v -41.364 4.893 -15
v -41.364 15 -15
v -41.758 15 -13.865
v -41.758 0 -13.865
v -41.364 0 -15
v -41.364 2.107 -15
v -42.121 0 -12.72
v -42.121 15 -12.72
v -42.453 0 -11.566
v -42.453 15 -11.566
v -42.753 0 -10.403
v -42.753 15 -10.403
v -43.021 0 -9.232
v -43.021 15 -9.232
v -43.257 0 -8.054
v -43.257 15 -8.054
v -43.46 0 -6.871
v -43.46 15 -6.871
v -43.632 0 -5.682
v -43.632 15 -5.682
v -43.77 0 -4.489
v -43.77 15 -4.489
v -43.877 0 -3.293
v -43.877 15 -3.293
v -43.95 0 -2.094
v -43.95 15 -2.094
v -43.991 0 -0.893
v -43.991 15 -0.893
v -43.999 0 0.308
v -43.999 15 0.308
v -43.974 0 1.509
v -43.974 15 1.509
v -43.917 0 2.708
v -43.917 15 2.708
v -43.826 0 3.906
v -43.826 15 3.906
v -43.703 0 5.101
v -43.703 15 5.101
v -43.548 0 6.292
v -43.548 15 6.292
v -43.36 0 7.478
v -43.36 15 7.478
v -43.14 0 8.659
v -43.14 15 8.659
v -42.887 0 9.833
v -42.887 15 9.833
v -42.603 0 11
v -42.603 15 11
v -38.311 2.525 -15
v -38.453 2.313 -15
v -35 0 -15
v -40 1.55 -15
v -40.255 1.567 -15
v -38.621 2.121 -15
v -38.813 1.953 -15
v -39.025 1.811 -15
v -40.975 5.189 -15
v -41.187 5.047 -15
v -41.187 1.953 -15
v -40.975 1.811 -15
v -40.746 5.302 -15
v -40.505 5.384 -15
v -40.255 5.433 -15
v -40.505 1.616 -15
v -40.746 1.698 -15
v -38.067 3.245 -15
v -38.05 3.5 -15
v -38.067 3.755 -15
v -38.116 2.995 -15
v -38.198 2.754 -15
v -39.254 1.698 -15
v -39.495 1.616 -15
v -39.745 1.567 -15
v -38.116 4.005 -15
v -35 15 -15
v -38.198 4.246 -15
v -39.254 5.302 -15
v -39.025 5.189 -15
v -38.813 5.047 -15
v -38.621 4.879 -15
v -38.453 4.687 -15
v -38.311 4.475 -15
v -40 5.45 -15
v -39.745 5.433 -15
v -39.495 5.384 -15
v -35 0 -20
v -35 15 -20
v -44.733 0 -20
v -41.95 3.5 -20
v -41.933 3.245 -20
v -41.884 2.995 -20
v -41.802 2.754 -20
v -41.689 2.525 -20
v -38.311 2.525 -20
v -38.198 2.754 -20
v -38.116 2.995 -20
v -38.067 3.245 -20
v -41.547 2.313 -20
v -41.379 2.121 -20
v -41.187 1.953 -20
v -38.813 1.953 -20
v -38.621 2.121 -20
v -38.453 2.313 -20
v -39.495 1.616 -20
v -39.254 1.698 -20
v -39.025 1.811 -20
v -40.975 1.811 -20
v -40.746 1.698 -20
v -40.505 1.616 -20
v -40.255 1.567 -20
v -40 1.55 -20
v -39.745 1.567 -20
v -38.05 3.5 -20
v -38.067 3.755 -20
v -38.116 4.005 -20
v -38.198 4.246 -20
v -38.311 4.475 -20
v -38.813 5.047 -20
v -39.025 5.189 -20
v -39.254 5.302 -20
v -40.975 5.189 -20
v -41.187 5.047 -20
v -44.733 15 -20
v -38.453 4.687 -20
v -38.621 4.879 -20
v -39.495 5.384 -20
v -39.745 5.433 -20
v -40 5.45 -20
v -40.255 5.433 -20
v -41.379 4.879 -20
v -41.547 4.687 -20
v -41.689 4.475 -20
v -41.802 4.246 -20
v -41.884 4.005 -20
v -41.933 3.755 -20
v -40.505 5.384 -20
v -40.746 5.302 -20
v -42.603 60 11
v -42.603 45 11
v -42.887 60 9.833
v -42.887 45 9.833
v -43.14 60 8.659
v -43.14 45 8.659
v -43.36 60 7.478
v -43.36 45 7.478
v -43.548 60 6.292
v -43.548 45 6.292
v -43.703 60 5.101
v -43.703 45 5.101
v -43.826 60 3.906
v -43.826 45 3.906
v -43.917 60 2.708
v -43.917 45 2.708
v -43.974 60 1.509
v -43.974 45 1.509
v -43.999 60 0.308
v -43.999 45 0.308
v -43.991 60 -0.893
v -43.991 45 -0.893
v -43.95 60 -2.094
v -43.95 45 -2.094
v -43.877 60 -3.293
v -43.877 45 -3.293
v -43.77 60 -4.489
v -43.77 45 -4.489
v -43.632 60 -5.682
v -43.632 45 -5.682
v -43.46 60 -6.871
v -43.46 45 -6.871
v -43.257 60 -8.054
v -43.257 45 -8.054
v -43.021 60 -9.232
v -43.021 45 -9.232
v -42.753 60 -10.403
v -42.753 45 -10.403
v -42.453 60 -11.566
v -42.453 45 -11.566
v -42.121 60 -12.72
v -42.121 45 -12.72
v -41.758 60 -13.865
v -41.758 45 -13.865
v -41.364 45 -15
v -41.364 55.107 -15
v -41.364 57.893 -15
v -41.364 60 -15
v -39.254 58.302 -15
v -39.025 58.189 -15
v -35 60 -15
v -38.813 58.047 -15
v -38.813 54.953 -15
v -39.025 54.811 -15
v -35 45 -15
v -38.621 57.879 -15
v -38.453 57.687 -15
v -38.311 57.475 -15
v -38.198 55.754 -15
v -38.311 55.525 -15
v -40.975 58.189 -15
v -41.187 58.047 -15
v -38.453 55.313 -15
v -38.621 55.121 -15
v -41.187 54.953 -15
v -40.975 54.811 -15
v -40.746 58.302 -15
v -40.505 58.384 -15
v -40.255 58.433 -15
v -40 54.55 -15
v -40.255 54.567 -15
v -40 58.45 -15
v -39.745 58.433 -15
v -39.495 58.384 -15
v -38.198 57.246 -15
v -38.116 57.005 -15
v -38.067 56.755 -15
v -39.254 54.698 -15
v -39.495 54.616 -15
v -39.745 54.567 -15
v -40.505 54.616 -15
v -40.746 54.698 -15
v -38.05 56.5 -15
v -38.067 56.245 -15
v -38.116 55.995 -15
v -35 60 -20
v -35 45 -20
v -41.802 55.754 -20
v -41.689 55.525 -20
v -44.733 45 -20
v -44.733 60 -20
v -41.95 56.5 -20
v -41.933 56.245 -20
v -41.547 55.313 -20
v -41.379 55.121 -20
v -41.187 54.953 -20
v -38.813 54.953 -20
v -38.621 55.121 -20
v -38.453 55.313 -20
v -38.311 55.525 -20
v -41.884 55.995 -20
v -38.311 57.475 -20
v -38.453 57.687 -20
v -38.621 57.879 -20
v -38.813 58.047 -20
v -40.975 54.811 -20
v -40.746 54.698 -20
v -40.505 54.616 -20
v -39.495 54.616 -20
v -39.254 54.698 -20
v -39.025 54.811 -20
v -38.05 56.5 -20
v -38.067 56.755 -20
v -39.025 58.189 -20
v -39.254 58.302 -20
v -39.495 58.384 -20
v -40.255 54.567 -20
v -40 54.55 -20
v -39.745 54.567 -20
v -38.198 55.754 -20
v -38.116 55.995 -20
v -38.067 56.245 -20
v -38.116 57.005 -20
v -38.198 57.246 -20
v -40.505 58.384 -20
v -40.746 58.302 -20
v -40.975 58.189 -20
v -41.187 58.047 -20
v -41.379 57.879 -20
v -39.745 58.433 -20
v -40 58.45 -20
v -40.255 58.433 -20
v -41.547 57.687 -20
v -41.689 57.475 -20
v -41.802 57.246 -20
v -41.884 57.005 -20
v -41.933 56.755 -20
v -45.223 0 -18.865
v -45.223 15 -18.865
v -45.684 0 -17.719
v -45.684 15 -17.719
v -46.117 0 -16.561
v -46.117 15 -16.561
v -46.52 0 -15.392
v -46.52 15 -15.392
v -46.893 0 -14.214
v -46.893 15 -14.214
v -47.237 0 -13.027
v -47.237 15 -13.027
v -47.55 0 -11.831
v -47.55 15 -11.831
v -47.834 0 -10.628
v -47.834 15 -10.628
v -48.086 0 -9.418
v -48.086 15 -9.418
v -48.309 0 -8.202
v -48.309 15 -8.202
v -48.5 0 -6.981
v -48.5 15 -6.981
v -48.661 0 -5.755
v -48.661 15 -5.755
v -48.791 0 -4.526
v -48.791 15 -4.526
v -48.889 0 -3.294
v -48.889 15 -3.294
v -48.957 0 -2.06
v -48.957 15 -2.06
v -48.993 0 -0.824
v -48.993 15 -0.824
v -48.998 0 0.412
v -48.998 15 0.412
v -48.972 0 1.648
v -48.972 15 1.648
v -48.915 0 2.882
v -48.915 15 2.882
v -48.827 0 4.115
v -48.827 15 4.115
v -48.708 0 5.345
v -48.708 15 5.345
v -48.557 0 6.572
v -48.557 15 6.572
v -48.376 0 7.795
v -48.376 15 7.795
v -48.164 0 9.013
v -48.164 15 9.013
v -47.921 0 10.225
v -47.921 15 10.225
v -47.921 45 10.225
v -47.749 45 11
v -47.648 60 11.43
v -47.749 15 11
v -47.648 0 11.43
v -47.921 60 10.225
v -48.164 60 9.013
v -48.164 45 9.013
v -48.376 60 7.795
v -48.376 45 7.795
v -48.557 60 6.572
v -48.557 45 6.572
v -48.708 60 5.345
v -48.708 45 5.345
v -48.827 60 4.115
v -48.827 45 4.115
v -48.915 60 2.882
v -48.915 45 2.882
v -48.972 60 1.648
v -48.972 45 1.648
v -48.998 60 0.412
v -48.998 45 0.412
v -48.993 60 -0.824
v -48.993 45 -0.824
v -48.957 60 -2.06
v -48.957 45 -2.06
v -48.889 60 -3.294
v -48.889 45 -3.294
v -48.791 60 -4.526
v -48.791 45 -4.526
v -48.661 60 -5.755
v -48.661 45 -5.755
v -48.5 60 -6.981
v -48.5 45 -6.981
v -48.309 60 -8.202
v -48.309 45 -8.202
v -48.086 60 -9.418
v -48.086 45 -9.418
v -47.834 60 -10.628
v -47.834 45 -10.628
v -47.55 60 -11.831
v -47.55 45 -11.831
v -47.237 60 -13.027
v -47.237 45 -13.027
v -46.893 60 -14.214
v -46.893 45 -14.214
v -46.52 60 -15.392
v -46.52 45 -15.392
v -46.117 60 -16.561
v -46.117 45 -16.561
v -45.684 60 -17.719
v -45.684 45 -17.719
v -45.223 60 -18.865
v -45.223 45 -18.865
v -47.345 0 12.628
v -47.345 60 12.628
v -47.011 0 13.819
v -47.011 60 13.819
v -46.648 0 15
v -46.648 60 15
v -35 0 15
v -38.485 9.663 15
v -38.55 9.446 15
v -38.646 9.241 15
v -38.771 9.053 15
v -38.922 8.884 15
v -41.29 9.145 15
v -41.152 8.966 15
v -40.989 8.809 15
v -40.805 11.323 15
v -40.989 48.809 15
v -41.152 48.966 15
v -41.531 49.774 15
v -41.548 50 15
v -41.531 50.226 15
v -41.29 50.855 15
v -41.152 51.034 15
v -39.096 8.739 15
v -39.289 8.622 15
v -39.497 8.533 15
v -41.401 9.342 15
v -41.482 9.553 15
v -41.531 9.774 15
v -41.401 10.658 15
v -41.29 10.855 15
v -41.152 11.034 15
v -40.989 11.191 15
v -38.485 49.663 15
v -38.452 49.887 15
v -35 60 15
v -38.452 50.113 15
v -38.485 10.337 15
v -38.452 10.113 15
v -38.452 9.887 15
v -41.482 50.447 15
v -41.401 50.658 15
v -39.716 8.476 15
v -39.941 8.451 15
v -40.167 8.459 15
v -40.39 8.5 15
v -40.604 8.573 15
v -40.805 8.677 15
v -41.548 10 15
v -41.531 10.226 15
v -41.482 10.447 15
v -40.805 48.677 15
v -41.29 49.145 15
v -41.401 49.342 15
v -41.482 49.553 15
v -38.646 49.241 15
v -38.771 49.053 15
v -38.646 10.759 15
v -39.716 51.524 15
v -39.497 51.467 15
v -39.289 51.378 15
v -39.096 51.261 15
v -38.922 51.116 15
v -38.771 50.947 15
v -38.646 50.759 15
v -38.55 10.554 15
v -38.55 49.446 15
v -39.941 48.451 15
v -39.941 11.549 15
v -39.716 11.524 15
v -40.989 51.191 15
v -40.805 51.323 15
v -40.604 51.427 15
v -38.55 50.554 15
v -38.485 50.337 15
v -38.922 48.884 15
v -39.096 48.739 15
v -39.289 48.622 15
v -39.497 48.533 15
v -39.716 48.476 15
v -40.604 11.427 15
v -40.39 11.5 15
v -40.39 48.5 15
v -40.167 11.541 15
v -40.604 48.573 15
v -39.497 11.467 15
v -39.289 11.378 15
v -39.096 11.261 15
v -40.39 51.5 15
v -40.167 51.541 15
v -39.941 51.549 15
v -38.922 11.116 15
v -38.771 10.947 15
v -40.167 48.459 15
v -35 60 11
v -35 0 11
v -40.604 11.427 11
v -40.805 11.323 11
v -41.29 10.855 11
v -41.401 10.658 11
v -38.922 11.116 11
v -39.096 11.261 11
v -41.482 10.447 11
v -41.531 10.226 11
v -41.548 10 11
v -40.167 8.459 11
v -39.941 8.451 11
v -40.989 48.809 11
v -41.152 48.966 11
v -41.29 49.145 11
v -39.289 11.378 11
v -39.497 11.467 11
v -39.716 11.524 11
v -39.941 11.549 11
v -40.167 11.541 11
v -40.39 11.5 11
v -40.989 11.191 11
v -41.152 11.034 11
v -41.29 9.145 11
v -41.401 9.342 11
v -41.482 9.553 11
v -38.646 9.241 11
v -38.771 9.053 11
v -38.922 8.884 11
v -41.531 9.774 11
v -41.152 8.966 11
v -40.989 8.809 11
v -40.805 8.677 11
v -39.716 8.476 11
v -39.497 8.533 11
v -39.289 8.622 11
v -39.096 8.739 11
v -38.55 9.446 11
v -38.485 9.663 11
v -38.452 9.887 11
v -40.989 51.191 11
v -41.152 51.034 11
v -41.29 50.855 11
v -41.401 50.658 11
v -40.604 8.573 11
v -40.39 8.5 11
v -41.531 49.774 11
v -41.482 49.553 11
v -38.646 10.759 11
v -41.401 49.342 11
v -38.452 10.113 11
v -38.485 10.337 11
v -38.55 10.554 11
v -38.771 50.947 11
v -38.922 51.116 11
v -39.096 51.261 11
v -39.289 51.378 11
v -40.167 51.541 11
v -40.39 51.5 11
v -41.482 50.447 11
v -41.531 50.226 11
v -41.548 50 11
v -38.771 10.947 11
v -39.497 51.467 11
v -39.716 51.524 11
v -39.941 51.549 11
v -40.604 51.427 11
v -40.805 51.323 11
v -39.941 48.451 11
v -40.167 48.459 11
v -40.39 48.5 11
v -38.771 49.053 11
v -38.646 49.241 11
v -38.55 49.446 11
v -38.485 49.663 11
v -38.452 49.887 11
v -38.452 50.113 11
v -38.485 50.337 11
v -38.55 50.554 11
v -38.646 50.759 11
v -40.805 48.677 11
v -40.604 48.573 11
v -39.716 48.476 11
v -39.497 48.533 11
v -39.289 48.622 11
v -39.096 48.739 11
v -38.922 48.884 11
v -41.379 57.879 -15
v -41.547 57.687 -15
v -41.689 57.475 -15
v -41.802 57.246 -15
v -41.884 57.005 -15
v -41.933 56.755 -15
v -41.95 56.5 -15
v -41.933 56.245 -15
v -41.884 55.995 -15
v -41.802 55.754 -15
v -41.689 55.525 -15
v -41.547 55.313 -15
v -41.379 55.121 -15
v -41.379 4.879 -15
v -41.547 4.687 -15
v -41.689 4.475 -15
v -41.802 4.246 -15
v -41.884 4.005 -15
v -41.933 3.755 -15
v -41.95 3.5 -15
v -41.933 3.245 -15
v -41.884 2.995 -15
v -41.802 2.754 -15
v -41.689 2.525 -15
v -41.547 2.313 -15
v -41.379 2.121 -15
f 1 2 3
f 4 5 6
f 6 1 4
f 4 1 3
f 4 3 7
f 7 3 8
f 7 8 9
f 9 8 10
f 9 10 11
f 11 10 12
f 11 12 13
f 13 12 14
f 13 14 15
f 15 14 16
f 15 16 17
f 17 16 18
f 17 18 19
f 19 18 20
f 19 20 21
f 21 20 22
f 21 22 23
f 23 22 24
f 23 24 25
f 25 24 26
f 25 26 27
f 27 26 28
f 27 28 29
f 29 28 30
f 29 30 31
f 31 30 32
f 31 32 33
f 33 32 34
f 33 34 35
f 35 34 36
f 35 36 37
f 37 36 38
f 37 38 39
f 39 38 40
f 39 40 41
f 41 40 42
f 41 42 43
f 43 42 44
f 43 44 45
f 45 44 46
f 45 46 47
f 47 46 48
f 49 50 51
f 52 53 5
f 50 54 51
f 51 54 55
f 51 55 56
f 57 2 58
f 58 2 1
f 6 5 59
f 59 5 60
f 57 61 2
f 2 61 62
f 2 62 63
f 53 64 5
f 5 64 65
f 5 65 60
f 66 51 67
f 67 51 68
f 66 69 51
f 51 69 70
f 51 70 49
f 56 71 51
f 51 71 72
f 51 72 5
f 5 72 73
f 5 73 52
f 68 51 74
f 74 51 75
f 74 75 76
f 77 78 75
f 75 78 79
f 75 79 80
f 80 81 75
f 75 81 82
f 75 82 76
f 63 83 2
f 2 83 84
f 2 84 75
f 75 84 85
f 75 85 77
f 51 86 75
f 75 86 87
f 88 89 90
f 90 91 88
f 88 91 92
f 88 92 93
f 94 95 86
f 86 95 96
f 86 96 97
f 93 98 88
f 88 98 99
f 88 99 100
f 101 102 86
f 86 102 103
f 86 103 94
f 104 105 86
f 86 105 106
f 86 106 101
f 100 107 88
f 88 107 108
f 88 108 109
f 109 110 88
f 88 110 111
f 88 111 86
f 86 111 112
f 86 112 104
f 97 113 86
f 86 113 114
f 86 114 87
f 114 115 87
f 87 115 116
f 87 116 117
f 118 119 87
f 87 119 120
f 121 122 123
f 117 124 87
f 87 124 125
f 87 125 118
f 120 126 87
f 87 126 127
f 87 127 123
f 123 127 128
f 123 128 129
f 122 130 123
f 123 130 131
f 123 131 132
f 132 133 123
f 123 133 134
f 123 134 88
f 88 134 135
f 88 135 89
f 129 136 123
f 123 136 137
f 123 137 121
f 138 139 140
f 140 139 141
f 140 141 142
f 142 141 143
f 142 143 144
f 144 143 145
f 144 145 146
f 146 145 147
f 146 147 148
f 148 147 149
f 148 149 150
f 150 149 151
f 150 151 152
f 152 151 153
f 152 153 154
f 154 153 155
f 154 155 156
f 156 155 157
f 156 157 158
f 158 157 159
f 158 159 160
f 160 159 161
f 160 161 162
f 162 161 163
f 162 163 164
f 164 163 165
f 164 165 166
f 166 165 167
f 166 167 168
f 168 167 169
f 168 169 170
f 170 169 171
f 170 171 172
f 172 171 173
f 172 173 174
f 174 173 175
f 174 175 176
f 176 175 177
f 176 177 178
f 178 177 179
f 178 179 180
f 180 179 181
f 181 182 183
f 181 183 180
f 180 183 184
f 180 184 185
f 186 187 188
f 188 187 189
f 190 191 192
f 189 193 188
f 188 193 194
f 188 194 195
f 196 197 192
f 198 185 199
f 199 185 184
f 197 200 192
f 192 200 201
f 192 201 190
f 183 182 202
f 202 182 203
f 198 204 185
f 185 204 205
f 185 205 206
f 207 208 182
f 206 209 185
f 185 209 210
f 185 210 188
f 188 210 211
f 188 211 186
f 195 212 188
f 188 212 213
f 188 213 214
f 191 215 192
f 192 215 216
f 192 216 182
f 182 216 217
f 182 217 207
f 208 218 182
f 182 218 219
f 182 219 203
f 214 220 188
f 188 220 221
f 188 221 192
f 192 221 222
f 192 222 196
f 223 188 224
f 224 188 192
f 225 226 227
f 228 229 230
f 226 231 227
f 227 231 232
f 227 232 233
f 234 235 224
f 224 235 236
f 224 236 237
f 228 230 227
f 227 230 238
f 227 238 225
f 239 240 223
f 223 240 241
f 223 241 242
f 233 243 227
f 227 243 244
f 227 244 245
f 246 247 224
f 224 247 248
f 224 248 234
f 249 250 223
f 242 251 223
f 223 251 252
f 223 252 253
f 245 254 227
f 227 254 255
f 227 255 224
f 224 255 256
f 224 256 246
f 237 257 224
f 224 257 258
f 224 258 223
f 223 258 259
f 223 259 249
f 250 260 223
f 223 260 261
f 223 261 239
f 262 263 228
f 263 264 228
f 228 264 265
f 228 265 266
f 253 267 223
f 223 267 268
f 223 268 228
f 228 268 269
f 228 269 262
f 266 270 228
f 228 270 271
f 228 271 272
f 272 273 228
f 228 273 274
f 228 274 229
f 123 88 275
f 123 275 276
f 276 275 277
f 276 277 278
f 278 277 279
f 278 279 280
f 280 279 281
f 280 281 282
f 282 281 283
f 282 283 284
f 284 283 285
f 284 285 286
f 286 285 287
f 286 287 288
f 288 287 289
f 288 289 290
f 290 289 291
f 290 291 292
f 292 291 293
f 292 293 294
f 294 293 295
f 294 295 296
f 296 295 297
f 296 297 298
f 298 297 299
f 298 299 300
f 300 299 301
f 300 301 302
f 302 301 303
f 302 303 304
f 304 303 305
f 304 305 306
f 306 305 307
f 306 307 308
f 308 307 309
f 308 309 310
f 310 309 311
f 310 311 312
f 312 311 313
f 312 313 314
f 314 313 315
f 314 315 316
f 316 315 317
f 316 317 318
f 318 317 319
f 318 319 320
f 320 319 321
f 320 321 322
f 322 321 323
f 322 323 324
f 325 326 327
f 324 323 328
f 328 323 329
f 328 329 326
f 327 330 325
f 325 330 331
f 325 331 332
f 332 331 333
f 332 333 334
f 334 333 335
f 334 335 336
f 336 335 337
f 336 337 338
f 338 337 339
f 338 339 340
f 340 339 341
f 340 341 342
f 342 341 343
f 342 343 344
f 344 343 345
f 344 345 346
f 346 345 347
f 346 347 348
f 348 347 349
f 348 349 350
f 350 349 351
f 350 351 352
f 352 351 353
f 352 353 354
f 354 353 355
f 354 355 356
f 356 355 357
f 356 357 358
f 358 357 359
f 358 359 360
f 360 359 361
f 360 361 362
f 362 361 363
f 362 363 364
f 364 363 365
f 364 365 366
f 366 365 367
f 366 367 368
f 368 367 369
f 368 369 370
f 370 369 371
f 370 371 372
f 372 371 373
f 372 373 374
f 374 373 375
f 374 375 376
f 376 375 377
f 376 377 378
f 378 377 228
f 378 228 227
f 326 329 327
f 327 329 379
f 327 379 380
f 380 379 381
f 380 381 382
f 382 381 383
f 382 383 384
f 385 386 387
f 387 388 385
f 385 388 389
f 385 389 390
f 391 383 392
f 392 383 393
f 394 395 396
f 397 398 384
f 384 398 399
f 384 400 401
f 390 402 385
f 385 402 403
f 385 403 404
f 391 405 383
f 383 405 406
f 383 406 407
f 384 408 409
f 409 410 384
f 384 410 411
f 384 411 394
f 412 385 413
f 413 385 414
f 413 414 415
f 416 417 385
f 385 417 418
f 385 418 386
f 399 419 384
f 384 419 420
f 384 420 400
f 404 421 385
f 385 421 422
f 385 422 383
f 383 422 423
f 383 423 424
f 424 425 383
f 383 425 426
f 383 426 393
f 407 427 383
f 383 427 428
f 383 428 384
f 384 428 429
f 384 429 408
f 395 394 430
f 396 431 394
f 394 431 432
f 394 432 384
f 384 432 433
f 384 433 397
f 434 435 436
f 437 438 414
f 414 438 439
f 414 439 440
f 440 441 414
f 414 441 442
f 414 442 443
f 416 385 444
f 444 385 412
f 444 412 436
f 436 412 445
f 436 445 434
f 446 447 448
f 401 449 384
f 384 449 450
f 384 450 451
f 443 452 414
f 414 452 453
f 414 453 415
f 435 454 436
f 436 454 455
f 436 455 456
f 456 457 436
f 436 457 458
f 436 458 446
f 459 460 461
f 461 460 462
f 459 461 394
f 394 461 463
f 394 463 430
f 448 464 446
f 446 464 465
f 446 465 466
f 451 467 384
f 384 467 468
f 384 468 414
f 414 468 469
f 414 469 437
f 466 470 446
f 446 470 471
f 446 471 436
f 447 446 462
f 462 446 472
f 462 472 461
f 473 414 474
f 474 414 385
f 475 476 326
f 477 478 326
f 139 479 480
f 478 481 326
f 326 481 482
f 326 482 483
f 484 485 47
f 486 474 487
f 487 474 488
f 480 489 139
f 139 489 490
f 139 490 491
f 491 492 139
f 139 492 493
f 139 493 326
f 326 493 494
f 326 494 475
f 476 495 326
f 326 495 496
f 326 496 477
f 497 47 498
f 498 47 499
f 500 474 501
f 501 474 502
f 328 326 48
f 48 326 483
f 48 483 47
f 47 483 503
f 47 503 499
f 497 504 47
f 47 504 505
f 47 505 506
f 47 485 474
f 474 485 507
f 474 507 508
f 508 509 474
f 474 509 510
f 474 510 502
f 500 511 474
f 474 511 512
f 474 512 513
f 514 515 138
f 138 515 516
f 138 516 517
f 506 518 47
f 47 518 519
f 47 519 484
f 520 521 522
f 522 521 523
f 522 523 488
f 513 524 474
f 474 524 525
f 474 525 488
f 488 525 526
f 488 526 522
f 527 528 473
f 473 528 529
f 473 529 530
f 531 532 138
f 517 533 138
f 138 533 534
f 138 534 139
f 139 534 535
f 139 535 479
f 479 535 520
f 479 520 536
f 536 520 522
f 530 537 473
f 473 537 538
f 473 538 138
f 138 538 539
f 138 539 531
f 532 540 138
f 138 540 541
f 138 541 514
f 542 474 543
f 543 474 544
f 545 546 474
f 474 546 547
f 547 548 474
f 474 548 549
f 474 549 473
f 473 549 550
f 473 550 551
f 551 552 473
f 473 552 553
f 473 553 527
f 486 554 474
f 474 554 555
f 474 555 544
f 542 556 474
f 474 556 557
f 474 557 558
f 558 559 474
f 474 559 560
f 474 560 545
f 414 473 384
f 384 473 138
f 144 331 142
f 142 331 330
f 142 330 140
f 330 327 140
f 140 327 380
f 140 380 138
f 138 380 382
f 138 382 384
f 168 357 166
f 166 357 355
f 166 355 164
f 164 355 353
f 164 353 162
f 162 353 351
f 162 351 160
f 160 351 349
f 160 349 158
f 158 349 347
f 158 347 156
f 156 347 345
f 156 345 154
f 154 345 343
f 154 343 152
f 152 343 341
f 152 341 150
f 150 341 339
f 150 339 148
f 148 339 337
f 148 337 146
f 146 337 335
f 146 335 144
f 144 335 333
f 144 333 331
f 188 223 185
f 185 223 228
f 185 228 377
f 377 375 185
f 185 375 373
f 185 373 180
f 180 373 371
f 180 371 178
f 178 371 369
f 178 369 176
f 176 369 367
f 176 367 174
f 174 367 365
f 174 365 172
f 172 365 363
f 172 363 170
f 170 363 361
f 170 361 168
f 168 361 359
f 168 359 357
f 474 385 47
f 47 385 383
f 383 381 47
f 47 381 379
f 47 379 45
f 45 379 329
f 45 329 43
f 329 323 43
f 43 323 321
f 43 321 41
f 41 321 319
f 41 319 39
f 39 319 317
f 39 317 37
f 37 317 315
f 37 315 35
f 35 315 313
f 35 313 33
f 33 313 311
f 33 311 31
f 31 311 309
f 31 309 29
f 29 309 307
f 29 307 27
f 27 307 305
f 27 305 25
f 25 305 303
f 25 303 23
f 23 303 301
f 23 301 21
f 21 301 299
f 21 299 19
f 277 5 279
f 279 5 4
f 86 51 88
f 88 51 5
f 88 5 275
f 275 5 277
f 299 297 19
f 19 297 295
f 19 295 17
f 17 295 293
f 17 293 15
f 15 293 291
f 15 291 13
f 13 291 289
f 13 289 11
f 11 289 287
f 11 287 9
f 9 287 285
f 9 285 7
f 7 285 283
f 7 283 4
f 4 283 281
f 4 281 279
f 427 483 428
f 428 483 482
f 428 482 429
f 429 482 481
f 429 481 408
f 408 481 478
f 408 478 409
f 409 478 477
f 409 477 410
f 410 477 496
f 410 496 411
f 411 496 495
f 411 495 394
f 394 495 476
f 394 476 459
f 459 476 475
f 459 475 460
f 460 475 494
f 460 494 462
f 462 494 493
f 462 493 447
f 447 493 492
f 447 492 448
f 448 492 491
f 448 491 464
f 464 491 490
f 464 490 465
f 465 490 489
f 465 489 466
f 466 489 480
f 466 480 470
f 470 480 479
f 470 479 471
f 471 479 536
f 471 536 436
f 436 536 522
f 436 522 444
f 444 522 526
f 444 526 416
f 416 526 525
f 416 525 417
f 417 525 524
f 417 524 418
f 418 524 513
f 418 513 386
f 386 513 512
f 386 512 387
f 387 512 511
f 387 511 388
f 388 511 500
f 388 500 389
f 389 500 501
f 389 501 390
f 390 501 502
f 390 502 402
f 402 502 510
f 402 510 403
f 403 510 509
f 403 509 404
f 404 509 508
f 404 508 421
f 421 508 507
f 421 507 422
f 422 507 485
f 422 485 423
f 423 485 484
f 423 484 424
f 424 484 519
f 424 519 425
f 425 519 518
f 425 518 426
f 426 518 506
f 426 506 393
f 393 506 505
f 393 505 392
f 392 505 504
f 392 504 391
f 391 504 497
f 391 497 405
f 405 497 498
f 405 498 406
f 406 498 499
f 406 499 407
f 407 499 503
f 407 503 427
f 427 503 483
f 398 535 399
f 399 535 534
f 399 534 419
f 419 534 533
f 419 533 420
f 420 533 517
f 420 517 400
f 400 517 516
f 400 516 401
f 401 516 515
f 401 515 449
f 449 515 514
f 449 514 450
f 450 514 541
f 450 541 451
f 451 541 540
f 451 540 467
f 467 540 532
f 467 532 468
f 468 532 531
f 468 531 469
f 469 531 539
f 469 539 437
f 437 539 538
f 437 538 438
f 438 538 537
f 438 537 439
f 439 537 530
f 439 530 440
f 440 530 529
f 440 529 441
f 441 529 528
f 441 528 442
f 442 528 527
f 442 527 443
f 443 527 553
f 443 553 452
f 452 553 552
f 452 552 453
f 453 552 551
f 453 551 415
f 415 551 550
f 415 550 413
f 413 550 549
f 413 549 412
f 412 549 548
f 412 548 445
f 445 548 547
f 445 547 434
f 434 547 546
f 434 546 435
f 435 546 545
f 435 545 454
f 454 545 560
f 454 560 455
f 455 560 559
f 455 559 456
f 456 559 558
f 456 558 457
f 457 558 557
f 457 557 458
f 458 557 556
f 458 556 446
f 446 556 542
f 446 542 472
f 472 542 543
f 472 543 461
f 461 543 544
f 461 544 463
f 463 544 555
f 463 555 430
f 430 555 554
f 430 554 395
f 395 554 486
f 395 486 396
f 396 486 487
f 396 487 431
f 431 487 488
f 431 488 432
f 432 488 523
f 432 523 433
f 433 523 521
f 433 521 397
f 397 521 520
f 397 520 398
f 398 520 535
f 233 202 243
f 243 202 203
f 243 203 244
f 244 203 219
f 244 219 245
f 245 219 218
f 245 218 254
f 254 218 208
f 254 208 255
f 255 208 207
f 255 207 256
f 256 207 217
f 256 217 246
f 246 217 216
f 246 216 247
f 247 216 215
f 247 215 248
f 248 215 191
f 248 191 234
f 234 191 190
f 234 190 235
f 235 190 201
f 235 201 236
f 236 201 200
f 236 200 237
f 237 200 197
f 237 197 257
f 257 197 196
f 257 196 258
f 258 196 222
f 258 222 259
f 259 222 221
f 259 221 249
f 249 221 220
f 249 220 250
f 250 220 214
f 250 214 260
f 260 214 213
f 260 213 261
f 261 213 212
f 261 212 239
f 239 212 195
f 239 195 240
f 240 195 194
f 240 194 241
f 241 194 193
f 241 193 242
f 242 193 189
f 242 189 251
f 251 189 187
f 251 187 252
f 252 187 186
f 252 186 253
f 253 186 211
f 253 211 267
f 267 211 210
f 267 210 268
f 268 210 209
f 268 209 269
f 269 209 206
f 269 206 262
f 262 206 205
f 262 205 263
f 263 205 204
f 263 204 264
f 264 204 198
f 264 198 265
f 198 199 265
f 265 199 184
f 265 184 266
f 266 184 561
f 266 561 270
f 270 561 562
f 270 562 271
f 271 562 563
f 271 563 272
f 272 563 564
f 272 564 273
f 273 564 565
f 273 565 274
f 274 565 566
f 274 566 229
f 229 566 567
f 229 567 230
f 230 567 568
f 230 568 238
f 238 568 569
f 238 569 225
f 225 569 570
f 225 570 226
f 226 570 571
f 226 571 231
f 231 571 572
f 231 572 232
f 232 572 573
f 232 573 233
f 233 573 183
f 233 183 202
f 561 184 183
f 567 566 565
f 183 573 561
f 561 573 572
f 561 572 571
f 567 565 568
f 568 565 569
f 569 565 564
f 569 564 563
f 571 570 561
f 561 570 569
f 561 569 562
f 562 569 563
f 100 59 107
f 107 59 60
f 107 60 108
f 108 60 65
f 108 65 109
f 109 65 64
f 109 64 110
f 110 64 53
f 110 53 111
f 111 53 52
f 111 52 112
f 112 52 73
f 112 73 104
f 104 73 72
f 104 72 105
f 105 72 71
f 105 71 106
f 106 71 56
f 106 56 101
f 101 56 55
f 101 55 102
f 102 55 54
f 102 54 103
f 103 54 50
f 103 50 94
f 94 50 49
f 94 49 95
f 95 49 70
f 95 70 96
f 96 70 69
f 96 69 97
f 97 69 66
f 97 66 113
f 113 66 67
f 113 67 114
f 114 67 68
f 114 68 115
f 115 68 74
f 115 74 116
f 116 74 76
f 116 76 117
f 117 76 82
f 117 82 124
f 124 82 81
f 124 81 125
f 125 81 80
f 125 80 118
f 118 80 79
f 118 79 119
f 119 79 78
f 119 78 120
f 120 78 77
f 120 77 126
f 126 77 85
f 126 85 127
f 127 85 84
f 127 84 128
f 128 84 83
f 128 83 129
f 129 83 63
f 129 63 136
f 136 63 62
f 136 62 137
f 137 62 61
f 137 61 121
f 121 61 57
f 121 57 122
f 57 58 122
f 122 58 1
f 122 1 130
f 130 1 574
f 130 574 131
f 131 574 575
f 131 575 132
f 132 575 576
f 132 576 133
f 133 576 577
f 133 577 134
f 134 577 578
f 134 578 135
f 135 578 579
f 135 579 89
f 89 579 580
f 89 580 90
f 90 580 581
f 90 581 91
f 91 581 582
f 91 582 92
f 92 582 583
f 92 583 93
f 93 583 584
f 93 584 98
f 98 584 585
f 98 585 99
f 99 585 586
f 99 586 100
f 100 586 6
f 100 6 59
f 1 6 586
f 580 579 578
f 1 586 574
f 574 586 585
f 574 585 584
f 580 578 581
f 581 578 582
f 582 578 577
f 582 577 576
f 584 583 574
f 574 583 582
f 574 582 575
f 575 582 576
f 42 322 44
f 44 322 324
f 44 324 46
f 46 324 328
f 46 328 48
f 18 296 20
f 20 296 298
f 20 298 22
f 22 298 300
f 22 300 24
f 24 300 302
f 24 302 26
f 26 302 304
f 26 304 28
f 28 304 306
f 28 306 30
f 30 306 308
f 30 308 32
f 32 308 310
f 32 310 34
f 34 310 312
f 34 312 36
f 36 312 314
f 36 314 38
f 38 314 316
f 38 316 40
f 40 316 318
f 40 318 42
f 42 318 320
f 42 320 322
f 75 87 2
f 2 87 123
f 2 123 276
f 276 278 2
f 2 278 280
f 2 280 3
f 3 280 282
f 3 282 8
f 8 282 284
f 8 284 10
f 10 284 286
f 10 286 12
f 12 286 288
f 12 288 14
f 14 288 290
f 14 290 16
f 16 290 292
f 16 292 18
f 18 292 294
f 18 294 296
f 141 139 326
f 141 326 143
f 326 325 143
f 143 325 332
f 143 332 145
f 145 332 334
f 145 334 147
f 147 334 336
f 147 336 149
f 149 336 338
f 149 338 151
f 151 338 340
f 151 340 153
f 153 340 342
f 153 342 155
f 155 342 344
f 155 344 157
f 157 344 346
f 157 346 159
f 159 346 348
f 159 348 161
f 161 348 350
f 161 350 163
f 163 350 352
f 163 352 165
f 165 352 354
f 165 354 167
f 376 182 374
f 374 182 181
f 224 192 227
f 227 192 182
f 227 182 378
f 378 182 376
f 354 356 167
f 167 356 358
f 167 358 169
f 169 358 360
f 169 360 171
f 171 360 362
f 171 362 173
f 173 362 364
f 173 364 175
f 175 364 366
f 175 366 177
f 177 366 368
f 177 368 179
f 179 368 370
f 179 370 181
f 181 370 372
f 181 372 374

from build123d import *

# Parameters (mm, degrees)
BOSS_EXTRUDE1_DEPTH = 60
SKETCH2_R           = 1.55
CUT_EXTRUDE1_DEPTH  = 5
SKETCH3_R           = 1.95
CUT_EXTRUDE2_DEPTH  = 5
SKETCH4_W           = 31
SKETCH4_H           = 30
CUT_EXTRUDE3_DEPTH  = 15


with BuildPart() as part:
    # Sketch1 → Boss-Extrude1 (new body)
    with BuildSketch(Plane(origin=(0, 0, 0), x_dir=(1, 0, 0), z_dir=(0, 1, 0))):
        with BuildLine():
            ThreePointArc((-44.732538493, 20), (-48.92681392, 2.677102848), (-46.647615159, -15))
            Line((-46.647615159, -15), (-41.36423576, -15))
            Line((-41.36423576, -15), (-35, -15))
            Line((-35, -15), (-35, -11))
            Line((-35, -11), (-42.602816808, -11))
            ThreePointArc((-42.602816808, -11), (-43.950159036, 2.093685925), (-41.36423576, 15))
            Line((-41.36423576, 15), (-35, 15))
            Line((-35, 15), (-35, 20))
            Line((-35, 20), (-39.191835885, 20))
            Line((-39.191835885, 20), (-44.732538493, 20))
        make_face()
    extrude(amount=BOSS_EXTRUDE1_DEPTH)

    # Sketch2 → Cut-Extrude1 (cut, through all)
    with BuildSketch(Plane(origin=(0, 0, 11), x_dir=(-1, 0, 0), z_dir=(0, 0, -1))):
        with Locations((39.997615159, 50)):
            Circle(SKETCH2_R)
        with Locations((39.997615159, 10)):
            Circle(SKETCH2_R)
    extrude(amount=-CUT_EXTRUDE1_DEPTH, mode=Mode.SUBTRACT)

    # Sketch3 → Cut-Extrude2 (cut)
    with BuildSketch(Plane(origin=(0, 0, -20), x_dir=(-1, 0, 0), z_dir=(0, 0, -1))):
        with Locations((40, 3.5)):
            Circle(SKETCH3_R)
        with Locations((40, 56.5)):
            Circle(SKETCH3_R)
    extrude(amount=-CUT_EXTRUDE2_DEPTH, mode=Mode.SUBTRACT)

    # Sketch4 → Cut-Extrude3 (cut, through all)
    with BuildSketch(Plane(origin=(-35, 0, 0), x_dir=(0, 0, -1), z_dir=(1, 0, 0))):
        with Locations((4.5, 30)):
            Rectangle(SKETCH4_W, SKETCH4_H)
    extrude(amount=-CUT_EXTRUDE3_DEPTH, mode=Mode.SUBTRACT)


solid = part.part
